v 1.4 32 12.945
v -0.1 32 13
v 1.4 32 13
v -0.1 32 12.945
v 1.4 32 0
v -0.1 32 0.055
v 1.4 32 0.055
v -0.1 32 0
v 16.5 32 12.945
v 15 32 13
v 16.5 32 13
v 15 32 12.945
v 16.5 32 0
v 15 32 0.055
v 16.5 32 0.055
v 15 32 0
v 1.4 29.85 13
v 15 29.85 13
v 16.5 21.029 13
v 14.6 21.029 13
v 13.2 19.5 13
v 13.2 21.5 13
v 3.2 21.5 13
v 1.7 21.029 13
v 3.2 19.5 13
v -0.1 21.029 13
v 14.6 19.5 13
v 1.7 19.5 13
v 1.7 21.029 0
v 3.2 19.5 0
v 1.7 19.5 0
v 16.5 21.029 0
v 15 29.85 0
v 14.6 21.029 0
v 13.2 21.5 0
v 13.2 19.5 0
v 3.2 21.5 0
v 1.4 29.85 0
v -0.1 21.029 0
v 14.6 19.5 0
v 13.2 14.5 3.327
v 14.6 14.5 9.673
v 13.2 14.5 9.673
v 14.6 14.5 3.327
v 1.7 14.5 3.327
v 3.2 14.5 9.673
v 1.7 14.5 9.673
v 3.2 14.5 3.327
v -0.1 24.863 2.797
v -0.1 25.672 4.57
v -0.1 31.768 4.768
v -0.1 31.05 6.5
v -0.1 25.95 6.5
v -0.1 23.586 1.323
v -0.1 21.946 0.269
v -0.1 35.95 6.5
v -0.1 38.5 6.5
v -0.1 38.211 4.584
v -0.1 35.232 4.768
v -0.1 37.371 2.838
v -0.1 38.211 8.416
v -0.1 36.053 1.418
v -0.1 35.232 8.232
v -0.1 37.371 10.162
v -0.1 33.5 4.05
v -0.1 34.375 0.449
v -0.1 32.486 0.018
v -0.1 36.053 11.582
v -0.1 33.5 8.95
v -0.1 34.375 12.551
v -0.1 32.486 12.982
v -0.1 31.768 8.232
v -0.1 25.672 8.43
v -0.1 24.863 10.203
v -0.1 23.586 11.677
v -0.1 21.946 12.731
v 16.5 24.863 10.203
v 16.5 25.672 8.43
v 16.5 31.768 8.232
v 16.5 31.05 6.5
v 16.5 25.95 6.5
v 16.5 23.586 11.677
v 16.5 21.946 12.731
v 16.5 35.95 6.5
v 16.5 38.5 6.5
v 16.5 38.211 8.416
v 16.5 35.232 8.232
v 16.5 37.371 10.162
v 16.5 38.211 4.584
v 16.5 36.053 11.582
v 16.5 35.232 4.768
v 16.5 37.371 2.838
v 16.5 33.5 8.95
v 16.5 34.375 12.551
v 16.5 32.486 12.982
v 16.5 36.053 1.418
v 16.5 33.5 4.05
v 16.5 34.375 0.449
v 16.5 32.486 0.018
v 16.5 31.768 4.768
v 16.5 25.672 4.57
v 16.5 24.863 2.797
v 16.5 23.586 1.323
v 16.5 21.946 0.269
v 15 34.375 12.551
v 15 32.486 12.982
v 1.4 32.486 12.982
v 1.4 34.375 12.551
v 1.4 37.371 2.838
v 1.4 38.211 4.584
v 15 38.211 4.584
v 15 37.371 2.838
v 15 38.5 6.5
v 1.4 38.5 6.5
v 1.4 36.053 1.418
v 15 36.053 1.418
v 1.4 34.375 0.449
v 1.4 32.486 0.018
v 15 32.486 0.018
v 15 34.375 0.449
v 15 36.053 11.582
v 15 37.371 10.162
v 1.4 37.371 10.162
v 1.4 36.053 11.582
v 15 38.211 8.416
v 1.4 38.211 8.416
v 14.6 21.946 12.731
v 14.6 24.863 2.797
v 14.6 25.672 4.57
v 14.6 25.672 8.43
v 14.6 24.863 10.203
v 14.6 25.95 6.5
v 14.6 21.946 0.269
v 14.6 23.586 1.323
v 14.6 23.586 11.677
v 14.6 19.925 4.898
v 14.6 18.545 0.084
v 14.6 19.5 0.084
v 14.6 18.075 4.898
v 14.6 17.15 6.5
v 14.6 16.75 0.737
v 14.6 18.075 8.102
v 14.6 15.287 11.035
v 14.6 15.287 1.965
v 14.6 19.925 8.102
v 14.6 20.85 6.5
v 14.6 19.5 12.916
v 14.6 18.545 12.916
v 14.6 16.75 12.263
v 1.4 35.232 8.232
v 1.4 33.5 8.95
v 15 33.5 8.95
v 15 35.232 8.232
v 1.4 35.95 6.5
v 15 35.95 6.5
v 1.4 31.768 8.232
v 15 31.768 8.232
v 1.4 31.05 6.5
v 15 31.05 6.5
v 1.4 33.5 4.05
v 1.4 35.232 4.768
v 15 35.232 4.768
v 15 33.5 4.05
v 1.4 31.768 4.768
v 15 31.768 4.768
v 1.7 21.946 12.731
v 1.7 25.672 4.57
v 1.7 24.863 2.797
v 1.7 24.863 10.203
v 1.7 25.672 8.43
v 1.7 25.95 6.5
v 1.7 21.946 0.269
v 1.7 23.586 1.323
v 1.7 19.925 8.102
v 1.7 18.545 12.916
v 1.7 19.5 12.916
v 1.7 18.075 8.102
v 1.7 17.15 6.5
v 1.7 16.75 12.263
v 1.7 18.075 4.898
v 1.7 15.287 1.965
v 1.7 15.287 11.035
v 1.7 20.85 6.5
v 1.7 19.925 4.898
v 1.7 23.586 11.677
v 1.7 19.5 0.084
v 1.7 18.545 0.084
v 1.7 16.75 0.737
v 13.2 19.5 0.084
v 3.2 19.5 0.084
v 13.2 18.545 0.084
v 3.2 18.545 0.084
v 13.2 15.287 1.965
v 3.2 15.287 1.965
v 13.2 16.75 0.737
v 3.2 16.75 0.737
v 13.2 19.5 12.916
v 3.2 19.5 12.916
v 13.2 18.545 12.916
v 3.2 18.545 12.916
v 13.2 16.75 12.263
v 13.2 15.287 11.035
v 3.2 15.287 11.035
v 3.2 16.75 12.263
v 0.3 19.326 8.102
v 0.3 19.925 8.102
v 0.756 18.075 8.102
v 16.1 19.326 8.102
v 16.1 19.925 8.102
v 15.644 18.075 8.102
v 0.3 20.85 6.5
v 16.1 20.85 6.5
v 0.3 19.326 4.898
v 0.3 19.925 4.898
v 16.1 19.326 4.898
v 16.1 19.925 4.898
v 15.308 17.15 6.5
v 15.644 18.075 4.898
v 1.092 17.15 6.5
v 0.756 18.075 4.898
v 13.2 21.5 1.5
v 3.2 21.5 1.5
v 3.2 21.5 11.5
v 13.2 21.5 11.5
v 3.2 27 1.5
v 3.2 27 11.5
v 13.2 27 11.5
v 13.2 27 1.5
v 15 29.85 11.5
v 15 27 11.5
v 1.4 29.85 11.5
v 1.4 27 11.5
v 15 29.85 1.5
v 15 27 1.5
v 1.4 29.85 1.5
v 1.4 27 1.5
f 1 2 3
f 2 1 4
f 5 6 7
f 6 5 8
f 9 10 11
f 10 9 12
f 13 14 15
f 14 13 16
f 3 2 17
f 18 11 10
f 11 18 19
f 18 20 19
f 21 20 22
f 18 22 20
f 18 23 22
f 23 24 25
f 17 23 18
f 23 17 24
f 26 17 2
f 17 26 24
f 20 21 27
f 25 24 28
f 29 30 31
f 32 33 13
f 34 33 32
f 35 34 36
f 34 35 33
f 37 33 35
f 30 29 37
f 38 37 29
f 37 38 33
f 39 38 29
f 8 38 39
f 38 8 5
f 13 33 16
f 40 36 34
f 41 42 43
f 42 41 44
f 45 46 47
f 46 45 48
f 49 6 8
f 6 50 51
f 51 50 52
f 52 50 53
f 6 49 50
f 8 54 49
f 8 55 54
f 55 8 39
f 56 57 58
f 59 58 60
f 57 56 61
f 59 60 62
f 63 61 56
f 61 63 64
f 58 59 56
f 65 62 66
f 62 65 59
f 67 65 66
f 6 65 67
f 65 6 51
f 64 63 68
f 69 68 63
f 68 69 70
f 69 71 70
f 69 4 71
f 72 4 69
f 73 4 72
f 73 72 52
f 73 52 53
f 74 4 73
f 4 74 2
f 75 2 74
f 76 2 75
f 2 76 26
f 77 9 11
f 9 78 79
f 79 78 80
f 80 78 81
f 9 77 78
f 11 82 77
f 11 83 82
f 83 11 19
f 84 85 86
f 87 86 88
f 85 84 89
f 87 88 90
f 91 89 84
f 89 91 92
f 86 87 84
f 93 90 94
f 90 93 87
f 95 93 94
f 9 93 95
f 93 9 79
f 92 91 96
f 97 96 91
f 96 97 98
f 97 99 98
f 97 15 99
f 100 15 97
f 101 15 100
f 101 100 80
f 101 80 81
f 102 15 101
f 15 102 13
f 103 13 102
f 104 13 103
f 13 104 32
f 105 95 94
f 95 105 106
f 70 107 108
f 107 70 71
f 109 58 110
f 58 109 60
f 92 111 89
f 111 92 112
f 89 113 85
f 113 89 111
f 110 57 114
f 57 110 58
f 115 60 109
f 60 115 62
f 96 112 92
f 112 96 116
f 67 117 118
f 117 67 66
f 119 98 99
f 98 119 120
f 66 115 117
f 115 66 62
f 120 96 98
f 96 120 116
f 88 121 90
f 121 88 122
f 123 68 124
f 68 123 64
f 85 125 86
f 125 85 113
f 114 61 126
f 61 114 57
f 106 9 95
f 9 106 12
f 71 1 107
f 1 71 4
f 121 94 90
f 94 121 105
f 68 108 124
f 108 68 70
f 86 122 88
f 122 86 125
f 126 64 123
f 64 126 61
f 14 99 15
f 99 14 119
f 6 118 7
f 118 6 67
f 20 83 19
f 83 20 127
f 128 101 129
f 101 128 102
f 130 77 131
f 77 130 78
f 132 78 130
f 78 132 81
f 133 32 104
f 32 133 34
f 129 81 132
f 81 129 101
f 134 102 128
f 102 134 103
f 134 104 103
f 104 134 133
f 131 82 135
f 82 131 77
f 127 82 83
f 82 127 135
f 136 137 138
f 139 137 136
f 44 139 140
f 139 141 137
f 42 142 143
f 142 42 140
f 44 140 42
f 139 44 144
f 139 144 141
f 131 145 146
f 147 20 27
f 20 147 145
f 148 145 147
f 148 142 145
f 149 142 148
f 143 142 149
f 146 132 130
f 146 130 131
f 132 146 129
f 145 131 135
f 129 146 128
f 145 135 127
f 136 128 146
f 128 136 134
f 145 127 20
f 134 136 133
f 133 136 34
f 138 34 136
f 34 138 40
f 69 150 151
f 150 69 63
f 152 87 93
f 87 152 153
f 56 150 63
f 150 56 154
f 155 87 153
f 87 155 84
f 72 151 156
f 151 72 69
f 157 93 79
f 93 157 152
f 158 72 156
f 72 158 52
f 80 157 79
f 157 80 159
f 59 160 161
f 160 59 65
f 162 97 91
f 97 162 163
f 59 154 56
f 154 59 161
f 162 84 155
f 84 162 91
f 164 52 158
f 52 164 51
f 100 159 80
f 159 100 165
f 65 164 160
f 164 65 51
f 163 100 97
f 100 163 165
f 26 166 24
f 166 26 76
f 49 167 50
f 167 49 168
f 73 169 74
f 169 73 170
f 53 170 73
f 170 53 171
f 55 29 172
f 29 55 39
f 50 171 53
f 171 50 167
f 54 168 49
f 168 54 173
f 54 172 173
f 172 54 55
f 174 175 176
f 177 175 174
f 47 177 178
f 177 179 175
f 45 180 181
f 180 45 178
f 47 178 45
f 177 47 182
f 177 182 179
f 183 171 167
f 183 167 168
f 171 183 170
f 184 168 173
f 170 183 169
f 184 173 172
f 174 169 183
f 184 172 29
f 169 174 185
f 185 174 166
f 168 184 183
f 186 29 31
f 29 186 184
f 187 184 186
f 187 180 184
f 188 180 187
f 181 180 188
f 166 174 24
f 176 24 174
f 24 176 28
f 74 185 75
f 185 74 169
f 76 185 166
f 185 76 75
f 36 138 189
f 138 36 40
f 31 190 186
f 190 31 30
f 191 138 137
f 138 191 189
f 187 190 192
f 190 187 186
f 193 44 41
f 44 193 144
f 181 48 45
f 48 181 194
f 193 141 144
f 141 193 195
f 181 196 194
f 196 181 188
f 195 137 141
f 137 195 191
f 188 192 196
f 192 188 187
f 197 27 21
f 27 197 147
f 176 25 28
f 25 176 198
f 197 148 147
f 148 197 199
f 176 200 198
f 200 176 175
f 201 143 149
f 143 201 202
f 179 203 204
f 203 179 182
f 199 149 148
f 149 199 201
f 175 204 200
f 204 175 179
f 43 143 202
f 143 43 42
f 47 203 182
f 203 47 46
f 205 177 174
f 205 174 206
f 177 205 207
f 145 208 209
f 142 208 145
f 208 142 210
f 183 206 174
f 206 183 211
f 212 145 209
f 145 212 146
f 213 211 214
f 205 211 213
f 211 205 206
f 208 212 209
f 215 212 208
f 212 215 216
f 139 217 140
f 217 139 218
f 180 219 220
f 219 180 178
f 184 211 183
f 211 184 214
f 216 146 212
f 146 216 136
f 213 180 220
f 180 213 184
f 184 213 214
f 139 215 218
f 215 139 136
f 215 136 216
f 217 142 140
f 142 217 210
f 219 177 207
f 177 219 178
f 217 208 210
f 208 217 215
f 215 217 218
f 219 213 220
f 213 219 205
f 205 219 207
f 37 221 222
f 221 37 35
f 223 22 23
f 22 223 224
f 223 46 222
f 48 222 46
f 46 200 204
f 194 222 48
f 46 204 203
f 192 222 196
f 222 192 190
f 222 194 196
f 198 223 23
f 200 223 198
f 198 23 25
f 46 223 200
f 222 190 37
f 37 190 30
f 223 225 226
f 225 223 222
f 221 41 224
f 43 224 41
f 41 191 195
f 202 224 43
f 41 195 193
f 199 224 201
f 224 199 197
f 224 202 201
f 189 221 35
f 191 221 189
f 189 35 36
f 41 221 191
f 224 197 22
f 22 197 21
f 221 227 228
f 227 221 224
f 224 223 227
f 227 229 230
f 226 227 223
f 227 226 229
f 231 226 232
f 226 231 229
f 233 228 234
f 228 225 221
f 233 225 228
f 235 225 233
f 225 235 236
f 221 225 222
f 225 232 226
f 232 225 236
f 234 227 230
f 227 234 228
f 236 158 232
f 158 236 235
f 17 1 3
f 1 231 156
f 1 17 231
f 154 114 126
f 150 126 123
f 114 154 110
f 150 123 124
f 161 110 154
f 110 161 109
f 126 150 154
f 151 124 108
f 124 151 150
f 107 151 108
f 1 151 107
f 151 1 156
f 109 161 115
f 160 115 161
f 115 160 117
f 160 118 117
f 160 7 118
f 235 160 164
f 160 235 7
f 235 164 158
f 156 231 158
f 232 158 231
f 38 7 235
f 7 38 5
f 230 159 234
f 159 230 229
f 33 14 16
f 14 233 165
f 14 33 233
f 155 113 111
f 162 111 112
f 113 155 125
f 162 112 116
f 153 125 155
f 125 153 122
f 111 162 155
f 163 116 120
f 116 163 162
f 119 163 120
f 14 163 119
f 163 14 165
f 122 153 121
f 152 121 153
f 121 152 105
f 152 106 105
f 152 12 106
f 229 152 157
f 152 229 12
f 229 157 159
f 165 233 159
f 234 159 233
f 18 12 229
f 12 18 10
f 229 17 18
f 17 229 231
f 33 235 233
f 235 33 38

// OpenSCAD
//
// PARAMETRIC Cable Chain v0.5
// Zerginator 10/2015
//



use <text_on.scad>


//ChainDef = [[1,0],[1,0],[1,0],[1,0],[1,0],[1,0],[1,0],[1,0],[1,0],[1,0],[1,30],[1,30],[1,30],[1,30],[1,30],[1,30],[1,0],[1,0],[1,0],[1,0],[1,0],[1,0],[1,0]];
ChainDef = [[1,0]];


// ===============================================================================
// Type
Type        =       2;         // 1: +45° Bewegbar, 2: +-45°
Round       =       1;         // Runder oder eckiger Typ

// ===============================================================================
// box parameters
width       =       16.6;       // width of the chainlink (Standard: 16.6)
height      =       13;         // height of the chainlink (Standard: 13)
length      =       25;         // length of the chainlink  (Standard: 25, min 30 für Eckig)


// ===============================================================================
// === OUTPUT


// ===Check Consistency of Values
if((!Type && !Start && !End) || ((Round != 1) && (length/height<2.2)))
{
    // === IDIOT BOX (if imposible values were selected)
    cube([30,30,30]);
    color("red")
    text_on_cube("Doh!!", locn_vec=[15,15,15], cube_size=30, face="top", size=5, center=true); 
    color("red")
    text_on_cube("Error!!", locn_vec=[15,15,15], cube_size=30, face="front", size=5, center=true);   
    color("red")
    text_on_cube("Fehler!!", locn_vec=[15,15,15], cube_size=30, face="right", size=4, center=true);   
    color("red")
    text_on_cube("Défaut!!", locn_vec=[15,15,15], cube_size=30, face="left", size=4, center=true);   
    color("red")
    text_on_cube("ошибка!!", locn_vec=[15,15,15], cube_size=30, face="back", size=4, center=true); 
    color("red")
    text_on_cube("错误!!", locn_vec=[15,15,15], cube_size=30, face="bottom", size=4, center=true);     
}

else
    
// === Put the Chainlinks together to a single Cablechain
{
    if( Round == 1)
    {
        vec = select2(ChainDef,[1]);
        for (i = [1:len(ChainDef)]) { 
            c = sumv(vec,i-1,0);
            a = coslength(i,ChainDef,vec); 
            b = sinlength(i,ChainDef,vec); 

            pcsOChain(width, length, height, 0, a, b, c);
        }
    }

}


// ===============================================================================
// === Mathematikfunktionen
function sumv(v,i,s=0) = (i==s ? v[i] : v[i] + sumv(v,i-1,s));
function select(source_vector,select_vector)=
   [ for (i = [0 : len(select_vector) - 1]) source_vector[select_vector[i]] ];
function select2(source_vector,select_vector)=
   [ for (i = [0 : len(source_vector) - 1]) source_vector[i][1] ];
function coslength(j,ChainDef,vec,s=1)=
   (j==s ? (((height/13)*(length-10.5)) * cos(sumv(vec,j-1,0)-ChainDef[j-1][1])) : (((height/13)*(length-10.5))) * cos(sumv(vec,j-1,0)-ChainDef[j-1][1]) + coslength(j-1,ChainDef,vec));  
   
function sinlength(j,ChainDef,vec,s=1)=
   (j==s ? ((height/13)*(length-10.5))*(sin(sumv(vec,j-1,0)-ChainDef[j-1][1])) : ((height/13)*(length-10.5))*(sin(sumv(vec,j-1,0)-ChainDef[j-1][1])) + sinlength(j-1,ChainDef,vec));


// ===============================================================================
// === Generate Chain module
module pcsOChain(width, length, height, posx,posy,posz, ChainAngle) 
    {    
        translate([posx,posy,posz])
        translate([0,(height/13)*4.5,(height/13)*6.5])  
        rotate(a=ChainAngle, v=[1,0,0])
        translate([0,-(height/13)*4.5,-(height/13)*6.5])  
        if (Round != 1)
        {
            pcsMiddlePart(width, length, height);
            pcsOFront(width, length, height);
            translate([0,length - height - overlapping,0]) pcsOBack(width, length, height);
        }
        else
        {
            CableChain(width, length, height);
        }
    }





// ===============================================================================
// ===============================================================================
// ===============================================================================




// ===============================================================================
// === Cable Chain (Rund)

module CableChain(width, length, height)
{
translate([width,0,0])
rotate(a=90, v=[0,0,1])
difference()
    {
    union()
        {
        difference()
            {
                union()
                   {
                    translate([0,0.1,0])
                        rotate(a=0, v=[0,0,1])
                            cube([(height/13)*(length-7.5),width,(height/13)*13]);
                    translate([(height/13)*(length-7.5),0.1,(height/13)*6.5])
                        rotate(a=90, v=[-1,0,0])
                            cylinder(r=(height/13)*6.5, h=width);
                   }

                union()
                    {
                    union()
                        {
                        if (Type == 1)
                        {
                            translate([(height/13)*-0.8,-1,(height/13)*6.4])
                                rotate(a=35, v=[0,-1,0])
                                    cube([(height/13)*9,width+1.5,(height/13)*5]);
                            translate([(height/13)*3.2,-1,(height/13)*9.9])
                                rotate(a=0, v=[0,0,1])
                                    cube([(height/13)*7,width+1.5,(height/13)*4]);
                        } 
                        translate([(height/13)*4.6,2,(height/13)*6.5])
                            rotate(a=90, v=[1,0,0])   
                                cylinder(r=(height/13)*6.85, h=3);
                        
                        //FEMALE
                            translate([(height/13)*(length-6),width+0.5,(height/13)*6.5])
                                rotate(a=90, v=[1,0,0])   
                                    cylinder(r=(height/13)*2.45, h=width+0.9);                         
                         translate([(height/13)*4.6,width+1.3,(height/13)*6.5])
                            rotate(a=90, v=[1,0,0])   
                                cylinder(r=(height/13)*6.85, h=3);
                        }
                    difference()
                        {
                        translate([0,-0.5,0])
                            rotate(a=0, v=[0,0,1])
                                cube([(height/13)*5,width+0.9,(height/13)*4]);
                        {
                        translate([(height/13)*5,width+0.4,(height/13)*5.5])
                            rotate(a=90, v=[1,0,0])   
                                cylinder(r=(height/13)*5.5, h=width+0.9);
                            }
                        }
                    if (Type == 2)
                        {
                        difference()
                            {
                            translate([0,-0.5,9])
                                rotate(a=0, v=[0,0,1])
                                    cube([(height/13)*5,width+0.9,(height/13)*4]);
                            {
                            translate([(height/13)*5,width+0.4,(height/13)*7.5])
                                rotate(a=90, v=[1,0,0])   
                                    cylinder(r=(height/13)*5.5, h=width+0.9);
                                }
                            }
                        }
                    }
                }
                
                // MALE
                difference()
                {
                    translate([(height/13)*4.5,width-0.3,(height/13)*6.5])
                        rotate(a=90, v=[1,0,0])   
                            cylinder(r=(height/13)*1.85, h=width-0.8); 
                    translate([(height/13)-1,-2,(height/13)*4.5])
                        rotate(a=-20, v=[0,0,1])
                            cube([4,4,4]);
                    translate([(height/13)-1,18.8,(height/13)*4.5]) //2.5
                            rotate(a=-70, v=[0,0,1]) //-15
                                cube([4,4,4]);
                } 
        } 
        
    union()
        {
            translate([(height/13)*-1,3.4,1.5])
                rotate(a=0, v=[0,0,1])
                    cube([(height/13)*(length+1),width-6.6,height-3]);
           translate([(height/13)*(length-9.65),3.4,(height/13)*3.5])
                rotate(a=0, v=[0,0,1])
                    cube([(height/13)*8,width-6.6,(height/13)*10]);    
            
            if (Type == 1)
            {
                translate([(height/13)*-1,3.4,(height/13)*-1.5])
                    rotate(a=0, v=[0,0,1])
                        cube([(height/13)*8,width-6.6,(height/13)*13]);
                translate([(height/13)*(length-12.5),1.6,(height/13)*9.7])
                    rotate(a=-60, v=[1,0,0])
                        cube([(height/13)*11,3,3]);  
                translate([(height/13)*(length-12.5),width-1.4,(height/13)*9.7])
                    rotate(a=150, v=[1,0,0])
                        cube([(height/13)*11,3,3]);
                translate([(height/13)*(length-12.5),1.6,1.5])
                    rotate(a=0, v=[0,0,1])
                        cube([(height/13)*6,width-3,((height/13)*8.2)+((height/13)*1.5-1.5)]);
                translate([(height/13)*(length-9.65),1.6,0])
                    rotate(a=0, v=[0,0,1])
                        cube([(height/13)*10,width-3,(height/13)*9.7]);
            }
            
            if (Type == 2)
            {
            translate([(height/13)*-1,3.4,(height/13)*-1.5])
                    rotate(a=0, v=[0,0,1])
                        cube([(height/13)*8,width-6.6,(height/13)*16]);
            translate([(height/13)*(length-12.5),1.6,1.5])
                    rotate(a=0, v=[0,0,1])
                        cube([(height/13)*6,width-3,height-3]);

            translate([(height/13)*(length-9.65),1.6,0])
                rotate(a=0, v=[0,0,1])
                    cube([(height/13)*10,width-3,(height/13)*13]);
            }
        }
    }    
    
} // END CABLE CHAIN RUND
